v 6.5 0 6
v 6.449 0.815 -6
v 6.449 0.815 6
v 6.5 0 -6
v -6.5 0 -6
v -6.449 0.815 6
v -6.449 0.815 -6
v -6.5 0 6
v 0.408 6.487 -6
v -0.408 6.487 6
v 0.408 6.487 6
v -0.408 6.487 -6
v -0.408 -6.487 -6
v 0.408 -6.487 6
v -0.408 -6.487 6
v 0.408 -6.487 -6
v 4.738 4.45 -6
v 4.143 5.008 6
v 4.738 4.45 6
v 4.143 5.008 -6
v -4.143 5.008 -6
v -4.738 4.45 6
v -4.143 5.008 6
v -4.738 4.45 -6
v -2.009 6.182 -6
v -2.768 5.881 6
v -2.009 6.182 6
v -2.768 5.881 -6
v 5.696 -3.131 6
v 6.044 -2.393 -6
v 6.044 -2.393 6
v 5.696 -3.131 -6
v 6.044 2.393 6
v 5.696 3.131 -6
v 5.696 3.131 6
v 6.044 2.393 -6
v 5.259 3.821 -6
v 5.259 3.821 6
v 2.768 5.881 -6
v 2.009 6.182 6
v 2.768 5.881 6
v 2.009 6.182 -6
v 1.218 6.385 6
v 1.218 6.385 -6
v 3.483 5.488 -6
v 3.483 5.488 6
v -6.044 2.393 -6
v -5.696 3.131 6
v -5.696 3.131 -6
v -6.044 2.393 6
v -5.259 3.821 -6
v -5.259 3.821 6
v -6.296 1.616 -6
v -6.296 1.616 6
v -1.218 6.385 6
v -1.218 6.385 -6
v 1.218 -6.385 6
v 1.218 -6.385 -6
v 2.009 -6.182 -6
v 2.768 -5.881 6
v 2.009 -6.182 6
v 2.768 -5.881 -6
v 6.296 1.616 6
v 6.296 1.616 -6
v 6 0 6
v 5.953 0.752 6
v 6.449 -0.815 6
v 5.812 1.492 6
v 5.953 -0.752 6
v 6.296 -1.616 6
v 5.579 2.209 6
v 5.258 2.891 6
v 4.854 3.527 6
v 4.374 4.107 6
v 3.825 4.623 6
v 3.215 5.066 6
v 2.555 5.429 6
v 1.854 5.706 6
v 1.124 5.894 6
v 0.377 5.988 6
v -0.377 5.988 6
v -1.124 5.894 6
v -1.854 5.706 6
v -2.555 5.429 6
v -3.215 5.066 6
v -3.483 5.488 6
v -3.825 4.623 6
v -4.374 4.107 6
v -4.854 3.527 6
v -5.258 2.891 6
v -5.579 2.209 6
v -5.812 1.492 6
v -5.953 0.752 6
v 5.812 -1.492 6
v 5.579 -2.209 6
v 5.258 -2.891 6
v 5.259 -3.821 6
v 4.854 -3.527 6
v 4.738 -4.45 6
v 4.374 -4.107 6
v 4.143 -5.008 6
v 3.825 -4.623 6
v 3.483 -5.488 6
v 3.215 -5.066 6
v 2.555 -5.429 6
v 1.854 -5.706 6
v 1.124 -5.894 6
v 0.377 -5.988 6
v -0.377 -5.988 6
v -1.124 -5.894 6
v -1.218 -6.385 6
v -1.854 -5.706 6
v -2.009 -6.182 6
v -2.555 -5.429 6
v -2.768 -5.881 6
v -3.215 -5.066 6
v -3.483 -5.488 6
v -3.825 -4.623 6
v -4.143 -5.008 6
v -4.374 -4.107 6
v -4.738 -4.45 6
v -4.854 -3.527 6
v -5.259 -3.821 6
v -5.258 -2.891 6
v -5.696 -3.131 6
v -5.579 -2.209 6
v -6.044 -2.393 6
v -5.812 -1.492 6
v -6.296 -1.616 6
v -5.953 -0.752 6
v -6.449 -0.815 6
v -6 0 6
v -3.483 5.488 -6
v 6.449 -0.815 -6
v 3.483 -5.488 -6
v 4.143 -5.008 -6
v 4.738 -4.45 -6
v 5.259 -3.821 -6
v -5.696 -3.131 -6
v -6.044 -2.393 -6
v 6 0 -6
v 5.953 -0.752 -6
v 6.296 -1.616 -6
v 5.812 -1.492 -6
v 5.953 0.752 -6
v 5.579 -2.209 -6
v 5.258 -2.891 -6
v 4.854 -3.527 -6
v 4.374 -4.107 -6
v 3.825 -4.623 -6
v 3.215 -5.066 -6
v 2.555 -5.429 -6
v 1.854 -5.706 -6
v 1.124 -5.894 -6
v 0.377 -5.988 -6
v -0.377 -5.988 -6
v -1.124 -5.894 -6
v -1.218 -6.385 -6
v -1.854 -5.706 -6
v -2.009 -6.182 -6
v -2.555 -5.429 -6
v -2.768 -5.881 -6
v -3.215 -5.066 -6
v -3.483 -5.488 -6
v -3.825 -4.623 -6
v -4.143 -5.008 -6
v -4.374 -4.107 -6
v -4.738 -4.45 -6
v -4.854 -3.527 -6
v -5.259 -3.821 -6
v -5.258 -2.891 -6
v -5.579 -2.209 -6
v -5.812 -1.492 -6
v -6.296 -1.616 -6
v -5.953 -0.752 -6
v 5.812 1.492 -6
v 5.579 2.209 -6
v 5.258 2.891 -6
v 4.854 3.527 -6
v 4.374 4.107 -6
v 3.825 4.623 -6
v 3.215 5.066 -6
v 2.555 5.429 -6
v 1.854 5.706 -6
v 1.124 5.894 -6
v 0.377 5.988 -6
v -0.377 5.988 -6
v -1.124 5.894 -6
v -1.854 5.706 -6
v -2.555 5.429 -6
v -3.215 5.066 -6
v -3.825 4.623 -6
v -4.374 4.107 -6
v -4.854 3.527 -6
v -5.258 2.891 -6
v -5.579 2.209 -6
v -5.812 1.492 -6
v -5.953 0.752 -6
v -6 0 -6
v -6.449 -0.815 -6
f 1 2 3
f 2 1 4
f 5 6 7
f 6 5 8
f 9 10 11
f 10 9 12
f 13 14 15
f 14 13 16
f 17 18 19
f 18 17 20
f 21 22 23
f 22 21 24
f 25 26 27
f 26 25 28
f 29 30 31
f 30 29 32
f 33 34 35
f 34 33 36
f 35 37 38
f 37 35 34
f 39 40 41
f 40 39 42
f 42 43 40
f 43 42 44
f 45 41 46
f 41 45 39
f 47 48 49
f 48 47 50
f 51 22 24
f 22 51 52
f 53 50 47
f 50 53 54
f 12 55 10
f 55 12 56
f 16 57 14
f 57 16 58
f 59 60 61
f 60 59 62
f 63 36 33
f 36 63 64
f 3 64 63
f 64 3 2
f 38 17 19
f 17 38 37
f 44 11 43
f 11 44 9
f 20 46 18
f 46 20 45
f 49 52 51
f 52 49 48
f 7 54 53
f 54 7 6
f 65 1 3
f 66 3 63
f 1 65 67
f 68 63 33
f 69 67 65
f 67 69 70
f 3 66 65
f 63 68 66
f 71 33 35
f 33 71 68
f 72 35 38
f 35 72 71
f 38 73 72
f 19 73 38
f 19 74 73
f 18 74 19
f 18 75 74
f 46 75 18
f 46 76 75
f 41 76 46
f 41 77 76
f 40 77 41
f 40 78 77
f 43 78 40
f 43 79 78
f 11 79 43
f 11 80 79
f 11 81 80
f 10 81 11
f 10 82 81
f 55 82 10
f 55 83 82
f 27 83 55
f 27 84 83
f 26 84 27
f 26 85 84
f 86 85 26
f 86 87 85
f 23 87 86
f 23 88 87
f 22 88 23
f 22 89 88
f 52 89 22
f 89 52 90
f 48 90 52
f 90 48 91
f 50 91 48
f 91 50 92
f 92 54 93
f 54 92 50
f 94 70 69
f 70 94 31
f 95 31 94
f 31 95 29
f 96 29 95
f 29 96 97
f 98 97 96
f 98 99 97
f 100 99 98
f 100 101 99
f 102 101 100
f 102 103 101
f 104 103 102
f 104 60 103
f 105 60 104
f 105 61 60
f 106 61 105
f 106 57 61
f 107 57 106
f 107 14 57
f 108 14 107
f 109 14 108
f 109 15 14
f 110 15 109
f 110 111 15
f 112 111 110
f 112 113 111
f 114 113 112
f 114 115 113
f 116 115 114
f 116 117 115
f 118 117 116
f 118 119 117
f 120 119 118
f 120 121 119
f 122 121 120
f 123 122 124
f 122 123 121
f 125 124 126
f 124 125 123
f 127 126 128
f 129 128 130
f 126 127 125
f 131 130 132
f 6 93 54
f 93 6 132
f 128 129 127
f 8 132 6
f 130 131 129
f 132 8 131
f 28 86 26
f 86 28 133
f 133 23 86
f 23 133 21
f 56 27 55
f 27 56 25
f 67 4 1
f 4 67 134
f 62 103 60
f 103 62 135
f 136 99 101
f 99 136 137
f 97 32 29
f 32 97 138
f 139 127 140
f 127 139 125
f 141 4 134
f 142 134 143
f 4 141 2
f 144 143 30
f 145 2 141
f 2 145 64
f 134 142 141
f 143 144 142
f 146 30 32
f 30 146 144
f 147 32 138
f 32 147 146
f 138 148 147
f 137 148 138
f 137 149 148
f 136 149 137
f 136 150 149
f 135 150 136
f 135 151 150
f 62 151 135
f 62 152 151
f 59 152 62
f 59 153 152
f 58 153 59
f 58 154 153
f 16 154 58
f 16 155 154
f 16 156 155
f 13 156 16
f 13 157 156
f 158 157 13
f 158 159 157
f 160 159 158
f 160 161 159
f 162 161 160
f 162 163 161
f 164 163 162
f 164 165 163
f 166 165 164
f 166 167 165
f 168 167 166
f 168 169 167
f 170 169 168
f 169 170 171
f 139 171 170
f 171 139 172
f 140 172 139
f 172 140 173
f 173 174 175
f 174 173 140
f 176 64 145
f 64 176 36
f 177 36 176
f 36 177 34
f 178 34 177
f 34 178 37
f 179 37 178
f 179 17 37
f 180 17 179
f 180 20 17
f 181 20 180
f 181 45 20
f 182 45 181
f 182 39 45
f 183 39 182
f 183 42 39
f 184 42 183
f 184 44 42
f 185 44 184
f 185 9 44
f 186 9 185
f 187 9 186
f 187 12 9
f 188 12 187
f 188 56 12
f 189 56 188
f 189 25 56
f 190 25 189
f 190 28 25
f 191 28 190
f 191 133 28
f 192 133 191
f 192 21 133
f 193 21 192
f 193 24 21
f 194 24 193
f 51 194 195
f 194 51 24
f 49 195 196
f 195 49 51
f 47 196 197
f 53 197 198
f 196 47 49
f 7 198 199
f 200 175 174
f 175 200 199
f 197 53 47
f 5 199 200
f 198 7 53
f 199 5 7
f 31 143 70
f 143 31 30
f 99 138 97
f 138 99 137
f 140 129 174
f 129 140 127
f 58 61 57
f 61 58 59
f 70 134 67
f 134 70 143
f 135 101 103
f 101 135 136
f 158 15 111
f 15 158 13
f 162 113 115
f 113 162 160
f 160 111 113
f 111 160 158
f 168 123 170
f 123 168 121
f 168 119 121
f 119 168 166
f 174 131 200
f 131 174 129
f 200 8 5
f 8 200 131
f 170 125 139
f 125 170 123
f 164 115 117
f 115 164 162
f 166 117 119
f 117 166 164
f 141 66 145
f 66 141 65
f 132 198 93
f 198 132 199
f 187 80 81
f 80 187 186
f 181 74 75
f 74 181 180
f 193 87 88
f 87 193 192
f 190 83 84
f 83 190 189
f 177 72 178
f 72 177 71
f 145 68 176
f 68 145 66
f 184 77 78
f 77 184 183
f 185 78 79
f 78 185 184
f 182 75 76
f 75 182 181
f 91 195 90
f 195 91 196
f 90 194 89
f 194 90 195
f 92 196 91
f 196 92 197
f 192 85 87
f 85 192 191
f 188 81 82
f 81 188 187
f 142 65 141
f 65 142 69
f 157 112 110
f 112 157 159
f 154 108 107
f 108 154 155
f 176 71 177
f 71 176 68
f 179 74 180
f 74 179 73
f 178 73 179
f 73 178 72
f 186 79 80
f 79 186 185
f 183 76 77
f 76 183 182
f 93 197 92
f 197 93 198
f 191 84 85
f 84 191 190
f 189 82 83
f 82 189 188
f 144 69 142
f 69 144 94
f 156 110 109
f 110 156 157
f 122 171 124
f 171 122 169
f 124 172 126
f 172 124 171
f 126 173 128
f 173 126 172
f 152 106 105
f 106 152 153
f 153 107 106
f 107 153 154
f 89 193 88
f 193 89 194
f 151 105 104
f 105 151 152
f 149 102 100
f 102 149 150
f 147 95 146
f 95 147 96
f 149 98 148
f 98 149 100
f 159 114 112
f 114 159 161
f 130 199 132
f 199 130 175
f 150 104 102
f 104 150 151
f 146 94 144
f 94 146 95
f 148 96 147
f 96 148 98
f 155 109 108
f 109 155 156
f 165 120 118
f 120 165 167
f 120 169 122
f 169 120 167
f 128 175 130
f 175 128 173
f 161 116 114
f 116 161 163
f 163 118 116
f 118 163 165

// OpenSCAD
$fn = 50;


difference() {
	union() {
		translate(v = [0, 0, -6.0000000000]) {
			cylinder(h = 12, r = 6.5000000000);
		}
	}
	union() {
		translate(v = [0, 0, -100.0000000000]) {
			cylinder(h = 200, r = 6);
		}
	}
}
